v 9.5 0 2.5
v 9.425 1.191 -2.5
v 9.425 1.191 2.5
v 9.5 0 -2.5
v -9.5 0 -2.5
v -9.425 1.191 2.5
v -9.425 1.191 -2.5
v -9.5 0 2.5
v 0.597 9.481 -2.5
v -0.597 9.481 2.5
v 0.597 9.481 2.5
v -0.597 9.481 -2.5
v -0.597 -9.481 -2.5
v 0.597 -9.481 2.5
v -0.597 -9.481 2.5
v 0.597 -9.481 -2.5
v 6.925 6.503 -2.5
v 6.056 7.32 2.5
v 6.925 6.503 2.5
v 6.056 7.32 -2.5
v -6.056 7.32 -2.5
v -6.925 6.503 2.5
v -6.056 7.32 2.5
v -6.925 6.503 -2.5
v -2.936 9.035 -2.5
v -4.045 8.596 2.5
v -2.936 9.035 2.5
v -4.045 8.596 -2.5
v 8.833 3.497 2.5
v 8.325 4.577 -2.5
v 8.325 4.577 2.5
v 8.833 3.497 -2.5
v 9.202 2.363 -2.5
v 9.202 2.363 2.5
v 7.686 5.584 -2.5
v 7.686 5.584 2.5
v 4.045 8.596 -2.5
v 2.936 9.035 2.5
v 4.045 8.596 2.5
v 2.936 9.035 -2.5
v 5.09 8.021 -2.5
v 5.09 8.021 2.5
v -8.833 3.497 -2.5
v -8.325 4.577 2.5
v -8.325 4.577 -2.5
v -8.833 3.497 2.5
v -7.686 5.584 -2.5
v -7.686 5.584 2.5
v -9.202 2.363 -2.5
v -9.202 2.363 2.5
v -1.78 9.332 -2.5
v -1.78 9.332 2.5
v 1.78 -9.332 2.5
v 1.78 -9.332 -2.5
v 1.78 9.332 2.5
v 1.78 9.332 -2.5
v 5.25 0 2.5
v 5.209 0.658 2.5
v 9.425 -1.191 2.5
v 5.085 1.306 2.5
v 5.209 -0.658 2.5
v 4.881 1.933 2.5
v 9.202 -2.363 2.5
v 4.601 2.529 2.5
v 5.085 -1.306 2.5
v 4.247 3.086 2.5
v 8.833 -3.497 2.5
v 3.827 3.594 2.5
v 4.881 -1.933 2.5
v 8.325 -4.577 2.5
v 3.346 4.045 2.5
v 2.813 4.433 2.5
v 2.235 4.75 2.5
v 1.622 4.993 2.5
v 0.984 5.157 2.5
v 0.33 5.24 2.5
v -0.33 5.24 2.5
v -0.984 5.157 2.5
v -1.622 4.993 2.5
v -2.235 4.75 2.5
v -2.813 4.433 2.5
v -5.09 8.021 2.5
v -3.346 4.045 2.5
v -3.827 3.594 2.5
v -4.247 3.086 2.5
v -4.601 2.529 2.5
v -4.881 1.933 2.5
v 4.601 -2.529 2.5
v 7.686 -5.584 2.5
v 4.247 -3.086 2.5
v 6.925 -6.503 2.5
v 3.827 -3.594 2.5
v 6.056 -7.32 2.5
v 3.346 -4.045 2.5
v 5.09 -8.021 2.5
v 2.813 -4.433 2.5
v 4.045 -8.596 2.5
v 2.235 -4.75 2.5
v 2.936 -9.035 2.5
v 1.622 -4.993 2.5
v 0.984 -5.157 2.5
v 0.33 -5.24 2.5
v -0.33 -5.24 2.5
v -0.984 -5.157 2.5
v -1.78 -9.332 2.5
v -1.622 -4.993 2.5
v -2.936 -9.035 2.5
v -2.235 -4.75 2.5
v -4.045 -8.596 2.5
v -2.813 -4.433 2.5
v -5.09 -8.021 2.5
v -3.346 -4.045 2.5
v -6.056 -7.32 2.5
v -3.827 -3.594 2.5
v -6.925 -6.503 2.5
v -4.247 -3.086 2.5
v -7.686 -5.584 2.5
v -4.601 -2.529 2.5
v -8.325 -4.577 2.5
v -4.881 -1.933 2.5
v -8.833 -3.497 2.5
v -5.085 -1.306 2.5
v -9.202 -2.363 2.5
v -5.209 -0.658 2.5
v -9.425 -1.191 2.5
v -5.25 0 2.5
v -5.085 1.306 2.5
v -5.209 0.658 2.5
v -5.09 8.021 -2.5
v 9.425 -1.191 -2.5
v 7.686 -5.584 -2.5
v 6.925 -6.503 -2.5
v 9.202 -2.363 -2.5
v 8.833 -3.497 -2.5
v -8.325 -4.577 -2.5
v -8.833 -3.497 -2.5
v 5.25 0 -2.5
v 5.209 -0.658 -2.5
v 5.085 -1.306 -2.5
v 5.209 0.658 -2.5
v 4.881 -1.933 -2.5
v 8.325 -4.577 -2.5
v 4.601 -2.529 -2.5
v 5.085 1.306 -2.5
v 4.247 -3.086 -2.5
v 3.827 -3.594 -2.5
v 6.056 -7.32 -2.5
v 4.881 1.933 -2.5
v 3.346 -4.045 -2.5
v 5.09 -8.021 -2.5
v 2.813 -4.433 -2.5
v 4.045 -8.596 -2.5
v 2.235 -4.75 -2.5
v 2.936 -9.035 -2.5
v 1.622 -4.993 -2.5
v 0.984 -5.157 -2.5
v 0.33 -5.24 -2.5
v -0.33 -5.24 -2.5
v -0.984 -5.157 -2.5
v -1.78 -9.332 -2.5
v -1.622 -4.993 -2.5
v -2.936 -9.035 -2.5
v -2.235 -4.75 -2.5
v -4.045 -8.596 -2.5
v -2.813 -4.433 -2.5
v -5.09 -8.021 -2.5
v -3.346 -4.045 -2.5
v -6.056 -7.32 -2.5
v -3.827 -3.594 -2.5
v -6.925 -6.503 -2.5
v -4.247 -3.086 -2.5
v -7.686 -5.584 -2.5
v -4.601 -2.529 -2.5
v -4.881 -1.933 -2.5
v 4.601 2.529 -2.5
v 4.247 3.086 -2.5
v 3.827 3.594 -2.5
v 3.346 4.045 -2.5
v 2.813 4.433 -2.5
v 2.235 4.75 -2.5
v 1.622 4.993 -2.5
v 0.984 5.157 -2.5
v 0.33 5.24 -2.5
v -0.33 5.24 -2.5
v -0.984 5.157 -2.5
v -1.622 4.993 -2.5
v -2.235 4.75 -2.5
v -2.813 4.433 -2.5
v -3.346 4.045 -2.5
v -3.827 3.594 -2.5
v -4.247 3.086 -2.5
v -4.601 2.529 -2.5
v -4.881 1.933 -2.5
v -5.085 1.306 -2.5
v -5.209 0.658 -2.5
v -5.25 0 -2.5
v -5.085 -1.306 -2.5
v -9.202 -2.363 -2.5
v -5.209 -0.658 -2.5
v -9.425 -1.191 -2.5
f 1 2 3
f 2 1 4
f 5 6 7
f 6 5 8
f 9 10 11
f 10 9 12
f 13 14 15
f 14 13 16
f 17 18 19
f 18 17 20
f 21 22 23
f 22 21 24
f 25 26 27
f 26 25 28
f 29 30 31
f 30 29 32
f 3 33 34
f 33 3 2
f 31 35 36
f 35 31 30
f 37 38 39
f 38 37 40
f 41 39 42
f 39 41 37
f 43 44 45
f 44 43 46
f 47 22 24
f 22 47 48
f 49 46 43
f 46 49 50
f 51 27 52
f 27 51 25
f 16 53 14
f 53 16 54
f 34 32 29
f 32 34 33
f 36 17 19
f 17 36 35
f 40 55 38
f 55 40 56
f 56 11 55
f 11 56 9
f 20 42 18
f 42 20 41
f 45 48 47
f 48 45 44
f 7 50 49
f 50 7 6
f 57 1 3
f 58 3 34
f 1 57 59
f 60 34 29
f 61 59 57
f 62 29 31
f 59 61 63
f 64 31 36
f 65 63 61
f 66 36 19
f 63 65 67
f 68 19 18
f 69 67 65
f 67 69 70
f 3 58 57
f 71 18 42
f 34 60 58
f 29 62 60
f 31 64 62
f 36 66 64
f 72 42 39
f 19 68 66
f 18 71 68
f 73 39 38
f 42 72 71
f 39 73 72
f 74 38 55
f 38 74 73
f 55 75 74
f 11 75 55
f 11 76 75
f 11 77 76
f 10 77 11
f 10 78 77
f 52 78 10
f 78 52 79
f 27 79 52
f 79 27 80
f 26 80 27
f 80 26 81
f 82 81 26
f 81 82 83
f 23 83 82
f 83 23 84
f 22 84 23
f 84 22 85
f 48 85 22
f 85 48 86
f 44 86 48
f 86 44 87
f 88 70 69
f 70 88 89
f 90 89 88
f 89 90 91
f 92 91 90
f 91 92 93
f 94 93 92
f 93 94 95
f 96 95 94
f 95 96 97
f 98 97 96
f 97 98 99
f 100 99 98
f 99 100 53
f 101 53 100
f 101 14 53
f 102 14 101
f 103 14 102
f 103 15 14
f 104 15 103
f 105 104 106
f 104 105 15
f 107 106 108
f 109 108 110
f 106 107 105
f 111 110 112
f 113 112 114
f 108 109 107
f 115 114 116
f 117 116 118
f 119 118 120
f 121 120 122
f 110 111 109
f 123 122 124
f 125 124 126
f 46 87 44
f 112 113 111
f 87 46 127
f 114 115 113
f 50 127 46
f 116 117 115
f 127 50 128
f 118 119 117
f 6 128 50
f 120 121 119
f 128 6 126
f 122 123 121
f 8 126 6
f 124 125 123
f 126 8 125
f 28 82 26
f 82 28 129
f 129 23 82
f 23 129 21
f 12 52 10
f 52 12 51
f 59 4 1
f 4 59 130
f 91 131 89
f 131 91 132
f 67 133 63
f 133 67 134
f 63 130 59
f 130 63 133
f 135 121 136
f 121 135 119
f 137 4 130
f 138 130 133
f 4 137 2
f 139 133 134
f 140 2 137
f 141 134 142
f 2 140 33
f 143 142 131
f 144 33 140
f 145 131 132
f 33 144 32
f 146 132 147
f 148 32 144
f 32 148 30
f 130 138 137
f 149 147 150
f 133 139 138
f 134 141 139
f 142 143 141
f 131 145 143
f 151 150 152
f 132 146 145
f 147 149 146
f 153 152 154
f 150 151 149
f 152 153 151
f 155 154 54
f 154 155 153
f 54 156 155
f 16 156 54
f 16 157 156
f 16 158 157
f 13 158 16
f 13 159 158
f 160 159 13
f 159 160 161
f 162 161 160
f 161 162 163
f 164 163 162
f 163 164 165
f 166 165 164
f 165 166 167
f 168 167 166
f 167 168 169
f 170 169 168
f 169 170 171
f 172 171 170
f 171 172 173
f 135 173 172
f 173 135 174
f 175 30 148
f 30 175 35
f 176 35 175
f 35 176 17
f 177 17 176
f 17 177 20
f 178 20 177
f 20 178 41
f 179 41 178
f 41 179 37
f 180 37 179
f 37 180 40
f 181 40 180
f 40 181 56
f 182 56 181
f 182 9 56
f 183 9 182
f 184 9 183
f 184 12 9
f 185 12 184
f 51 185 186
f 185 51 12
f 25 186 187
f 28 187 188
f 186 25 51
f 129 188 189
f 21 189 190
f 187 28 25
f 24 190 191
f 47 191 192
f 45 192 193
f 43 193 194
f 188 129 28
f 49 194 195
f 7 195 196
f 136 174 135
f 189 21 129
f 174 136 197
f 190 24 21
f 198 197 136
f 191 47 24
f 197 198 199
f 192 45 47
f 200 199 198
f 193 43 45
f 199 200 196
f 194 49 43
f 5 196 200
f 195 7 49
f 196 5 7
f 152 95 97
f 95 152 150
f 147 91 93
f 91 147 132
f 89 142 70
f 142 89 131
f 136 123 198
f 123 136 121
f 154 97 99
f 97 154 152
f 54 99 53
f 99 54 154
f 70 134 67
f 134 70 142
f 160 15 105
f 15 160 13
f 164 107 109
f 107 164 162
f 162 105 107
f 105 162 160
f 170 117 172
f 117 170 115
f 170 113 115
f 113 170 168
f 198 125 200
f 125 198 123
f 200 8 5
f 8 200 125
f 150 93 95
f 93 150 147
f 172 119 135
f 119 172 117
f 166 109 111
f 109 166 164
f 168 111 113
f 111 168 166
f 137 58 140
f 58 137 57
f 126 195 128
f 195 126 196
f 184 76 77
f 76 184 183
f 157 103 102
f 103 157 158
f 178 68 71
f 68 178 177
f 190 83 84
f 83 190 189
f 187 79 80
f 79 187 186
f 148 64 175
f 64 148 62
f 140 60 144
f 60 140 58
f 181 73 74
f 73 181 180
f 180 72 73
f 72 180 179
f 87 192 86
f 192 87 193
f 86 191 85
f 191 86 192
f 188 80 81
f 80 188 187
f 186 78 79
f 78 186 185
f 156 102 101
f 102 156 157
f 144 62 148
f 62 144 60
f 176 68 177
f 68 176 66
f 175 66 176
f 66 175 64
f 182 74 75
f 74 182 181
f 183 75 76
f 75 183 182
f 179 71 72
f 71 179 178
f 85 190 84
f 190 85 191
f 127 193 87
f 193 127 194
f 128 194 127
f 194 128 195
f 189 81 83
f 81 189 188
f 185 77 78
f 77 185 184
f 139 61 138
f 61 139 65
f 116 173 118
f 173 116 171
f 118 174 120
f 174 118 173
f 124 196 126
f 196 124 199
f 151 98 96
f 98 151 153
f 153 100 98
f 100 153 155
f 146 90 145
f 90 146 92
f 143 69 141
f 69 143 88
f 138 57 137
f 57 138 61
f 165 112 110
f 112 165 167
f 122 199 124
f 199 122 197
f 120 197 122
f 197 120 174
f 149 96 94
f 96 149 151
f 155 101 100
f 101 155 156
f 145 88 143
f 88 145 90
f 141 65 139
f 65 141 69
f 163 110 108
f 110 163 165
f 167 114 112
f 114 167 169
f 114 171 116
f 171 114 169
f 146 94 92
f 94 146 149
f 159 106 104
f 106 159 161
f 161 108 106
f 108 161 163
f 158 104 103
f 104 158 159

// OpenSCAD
$fn = 50;


difference() {
	union() {
		translate(v = [0, 0, -2.5000000000]) {
			cylinder(h = 5, r = 9.5000000000);
		}
	}
	union() {
		translate(v = [0, 0, -100.0000000000]) {
			cylinder(h = 200, r = 5.2500000000);
		}
	}
}
